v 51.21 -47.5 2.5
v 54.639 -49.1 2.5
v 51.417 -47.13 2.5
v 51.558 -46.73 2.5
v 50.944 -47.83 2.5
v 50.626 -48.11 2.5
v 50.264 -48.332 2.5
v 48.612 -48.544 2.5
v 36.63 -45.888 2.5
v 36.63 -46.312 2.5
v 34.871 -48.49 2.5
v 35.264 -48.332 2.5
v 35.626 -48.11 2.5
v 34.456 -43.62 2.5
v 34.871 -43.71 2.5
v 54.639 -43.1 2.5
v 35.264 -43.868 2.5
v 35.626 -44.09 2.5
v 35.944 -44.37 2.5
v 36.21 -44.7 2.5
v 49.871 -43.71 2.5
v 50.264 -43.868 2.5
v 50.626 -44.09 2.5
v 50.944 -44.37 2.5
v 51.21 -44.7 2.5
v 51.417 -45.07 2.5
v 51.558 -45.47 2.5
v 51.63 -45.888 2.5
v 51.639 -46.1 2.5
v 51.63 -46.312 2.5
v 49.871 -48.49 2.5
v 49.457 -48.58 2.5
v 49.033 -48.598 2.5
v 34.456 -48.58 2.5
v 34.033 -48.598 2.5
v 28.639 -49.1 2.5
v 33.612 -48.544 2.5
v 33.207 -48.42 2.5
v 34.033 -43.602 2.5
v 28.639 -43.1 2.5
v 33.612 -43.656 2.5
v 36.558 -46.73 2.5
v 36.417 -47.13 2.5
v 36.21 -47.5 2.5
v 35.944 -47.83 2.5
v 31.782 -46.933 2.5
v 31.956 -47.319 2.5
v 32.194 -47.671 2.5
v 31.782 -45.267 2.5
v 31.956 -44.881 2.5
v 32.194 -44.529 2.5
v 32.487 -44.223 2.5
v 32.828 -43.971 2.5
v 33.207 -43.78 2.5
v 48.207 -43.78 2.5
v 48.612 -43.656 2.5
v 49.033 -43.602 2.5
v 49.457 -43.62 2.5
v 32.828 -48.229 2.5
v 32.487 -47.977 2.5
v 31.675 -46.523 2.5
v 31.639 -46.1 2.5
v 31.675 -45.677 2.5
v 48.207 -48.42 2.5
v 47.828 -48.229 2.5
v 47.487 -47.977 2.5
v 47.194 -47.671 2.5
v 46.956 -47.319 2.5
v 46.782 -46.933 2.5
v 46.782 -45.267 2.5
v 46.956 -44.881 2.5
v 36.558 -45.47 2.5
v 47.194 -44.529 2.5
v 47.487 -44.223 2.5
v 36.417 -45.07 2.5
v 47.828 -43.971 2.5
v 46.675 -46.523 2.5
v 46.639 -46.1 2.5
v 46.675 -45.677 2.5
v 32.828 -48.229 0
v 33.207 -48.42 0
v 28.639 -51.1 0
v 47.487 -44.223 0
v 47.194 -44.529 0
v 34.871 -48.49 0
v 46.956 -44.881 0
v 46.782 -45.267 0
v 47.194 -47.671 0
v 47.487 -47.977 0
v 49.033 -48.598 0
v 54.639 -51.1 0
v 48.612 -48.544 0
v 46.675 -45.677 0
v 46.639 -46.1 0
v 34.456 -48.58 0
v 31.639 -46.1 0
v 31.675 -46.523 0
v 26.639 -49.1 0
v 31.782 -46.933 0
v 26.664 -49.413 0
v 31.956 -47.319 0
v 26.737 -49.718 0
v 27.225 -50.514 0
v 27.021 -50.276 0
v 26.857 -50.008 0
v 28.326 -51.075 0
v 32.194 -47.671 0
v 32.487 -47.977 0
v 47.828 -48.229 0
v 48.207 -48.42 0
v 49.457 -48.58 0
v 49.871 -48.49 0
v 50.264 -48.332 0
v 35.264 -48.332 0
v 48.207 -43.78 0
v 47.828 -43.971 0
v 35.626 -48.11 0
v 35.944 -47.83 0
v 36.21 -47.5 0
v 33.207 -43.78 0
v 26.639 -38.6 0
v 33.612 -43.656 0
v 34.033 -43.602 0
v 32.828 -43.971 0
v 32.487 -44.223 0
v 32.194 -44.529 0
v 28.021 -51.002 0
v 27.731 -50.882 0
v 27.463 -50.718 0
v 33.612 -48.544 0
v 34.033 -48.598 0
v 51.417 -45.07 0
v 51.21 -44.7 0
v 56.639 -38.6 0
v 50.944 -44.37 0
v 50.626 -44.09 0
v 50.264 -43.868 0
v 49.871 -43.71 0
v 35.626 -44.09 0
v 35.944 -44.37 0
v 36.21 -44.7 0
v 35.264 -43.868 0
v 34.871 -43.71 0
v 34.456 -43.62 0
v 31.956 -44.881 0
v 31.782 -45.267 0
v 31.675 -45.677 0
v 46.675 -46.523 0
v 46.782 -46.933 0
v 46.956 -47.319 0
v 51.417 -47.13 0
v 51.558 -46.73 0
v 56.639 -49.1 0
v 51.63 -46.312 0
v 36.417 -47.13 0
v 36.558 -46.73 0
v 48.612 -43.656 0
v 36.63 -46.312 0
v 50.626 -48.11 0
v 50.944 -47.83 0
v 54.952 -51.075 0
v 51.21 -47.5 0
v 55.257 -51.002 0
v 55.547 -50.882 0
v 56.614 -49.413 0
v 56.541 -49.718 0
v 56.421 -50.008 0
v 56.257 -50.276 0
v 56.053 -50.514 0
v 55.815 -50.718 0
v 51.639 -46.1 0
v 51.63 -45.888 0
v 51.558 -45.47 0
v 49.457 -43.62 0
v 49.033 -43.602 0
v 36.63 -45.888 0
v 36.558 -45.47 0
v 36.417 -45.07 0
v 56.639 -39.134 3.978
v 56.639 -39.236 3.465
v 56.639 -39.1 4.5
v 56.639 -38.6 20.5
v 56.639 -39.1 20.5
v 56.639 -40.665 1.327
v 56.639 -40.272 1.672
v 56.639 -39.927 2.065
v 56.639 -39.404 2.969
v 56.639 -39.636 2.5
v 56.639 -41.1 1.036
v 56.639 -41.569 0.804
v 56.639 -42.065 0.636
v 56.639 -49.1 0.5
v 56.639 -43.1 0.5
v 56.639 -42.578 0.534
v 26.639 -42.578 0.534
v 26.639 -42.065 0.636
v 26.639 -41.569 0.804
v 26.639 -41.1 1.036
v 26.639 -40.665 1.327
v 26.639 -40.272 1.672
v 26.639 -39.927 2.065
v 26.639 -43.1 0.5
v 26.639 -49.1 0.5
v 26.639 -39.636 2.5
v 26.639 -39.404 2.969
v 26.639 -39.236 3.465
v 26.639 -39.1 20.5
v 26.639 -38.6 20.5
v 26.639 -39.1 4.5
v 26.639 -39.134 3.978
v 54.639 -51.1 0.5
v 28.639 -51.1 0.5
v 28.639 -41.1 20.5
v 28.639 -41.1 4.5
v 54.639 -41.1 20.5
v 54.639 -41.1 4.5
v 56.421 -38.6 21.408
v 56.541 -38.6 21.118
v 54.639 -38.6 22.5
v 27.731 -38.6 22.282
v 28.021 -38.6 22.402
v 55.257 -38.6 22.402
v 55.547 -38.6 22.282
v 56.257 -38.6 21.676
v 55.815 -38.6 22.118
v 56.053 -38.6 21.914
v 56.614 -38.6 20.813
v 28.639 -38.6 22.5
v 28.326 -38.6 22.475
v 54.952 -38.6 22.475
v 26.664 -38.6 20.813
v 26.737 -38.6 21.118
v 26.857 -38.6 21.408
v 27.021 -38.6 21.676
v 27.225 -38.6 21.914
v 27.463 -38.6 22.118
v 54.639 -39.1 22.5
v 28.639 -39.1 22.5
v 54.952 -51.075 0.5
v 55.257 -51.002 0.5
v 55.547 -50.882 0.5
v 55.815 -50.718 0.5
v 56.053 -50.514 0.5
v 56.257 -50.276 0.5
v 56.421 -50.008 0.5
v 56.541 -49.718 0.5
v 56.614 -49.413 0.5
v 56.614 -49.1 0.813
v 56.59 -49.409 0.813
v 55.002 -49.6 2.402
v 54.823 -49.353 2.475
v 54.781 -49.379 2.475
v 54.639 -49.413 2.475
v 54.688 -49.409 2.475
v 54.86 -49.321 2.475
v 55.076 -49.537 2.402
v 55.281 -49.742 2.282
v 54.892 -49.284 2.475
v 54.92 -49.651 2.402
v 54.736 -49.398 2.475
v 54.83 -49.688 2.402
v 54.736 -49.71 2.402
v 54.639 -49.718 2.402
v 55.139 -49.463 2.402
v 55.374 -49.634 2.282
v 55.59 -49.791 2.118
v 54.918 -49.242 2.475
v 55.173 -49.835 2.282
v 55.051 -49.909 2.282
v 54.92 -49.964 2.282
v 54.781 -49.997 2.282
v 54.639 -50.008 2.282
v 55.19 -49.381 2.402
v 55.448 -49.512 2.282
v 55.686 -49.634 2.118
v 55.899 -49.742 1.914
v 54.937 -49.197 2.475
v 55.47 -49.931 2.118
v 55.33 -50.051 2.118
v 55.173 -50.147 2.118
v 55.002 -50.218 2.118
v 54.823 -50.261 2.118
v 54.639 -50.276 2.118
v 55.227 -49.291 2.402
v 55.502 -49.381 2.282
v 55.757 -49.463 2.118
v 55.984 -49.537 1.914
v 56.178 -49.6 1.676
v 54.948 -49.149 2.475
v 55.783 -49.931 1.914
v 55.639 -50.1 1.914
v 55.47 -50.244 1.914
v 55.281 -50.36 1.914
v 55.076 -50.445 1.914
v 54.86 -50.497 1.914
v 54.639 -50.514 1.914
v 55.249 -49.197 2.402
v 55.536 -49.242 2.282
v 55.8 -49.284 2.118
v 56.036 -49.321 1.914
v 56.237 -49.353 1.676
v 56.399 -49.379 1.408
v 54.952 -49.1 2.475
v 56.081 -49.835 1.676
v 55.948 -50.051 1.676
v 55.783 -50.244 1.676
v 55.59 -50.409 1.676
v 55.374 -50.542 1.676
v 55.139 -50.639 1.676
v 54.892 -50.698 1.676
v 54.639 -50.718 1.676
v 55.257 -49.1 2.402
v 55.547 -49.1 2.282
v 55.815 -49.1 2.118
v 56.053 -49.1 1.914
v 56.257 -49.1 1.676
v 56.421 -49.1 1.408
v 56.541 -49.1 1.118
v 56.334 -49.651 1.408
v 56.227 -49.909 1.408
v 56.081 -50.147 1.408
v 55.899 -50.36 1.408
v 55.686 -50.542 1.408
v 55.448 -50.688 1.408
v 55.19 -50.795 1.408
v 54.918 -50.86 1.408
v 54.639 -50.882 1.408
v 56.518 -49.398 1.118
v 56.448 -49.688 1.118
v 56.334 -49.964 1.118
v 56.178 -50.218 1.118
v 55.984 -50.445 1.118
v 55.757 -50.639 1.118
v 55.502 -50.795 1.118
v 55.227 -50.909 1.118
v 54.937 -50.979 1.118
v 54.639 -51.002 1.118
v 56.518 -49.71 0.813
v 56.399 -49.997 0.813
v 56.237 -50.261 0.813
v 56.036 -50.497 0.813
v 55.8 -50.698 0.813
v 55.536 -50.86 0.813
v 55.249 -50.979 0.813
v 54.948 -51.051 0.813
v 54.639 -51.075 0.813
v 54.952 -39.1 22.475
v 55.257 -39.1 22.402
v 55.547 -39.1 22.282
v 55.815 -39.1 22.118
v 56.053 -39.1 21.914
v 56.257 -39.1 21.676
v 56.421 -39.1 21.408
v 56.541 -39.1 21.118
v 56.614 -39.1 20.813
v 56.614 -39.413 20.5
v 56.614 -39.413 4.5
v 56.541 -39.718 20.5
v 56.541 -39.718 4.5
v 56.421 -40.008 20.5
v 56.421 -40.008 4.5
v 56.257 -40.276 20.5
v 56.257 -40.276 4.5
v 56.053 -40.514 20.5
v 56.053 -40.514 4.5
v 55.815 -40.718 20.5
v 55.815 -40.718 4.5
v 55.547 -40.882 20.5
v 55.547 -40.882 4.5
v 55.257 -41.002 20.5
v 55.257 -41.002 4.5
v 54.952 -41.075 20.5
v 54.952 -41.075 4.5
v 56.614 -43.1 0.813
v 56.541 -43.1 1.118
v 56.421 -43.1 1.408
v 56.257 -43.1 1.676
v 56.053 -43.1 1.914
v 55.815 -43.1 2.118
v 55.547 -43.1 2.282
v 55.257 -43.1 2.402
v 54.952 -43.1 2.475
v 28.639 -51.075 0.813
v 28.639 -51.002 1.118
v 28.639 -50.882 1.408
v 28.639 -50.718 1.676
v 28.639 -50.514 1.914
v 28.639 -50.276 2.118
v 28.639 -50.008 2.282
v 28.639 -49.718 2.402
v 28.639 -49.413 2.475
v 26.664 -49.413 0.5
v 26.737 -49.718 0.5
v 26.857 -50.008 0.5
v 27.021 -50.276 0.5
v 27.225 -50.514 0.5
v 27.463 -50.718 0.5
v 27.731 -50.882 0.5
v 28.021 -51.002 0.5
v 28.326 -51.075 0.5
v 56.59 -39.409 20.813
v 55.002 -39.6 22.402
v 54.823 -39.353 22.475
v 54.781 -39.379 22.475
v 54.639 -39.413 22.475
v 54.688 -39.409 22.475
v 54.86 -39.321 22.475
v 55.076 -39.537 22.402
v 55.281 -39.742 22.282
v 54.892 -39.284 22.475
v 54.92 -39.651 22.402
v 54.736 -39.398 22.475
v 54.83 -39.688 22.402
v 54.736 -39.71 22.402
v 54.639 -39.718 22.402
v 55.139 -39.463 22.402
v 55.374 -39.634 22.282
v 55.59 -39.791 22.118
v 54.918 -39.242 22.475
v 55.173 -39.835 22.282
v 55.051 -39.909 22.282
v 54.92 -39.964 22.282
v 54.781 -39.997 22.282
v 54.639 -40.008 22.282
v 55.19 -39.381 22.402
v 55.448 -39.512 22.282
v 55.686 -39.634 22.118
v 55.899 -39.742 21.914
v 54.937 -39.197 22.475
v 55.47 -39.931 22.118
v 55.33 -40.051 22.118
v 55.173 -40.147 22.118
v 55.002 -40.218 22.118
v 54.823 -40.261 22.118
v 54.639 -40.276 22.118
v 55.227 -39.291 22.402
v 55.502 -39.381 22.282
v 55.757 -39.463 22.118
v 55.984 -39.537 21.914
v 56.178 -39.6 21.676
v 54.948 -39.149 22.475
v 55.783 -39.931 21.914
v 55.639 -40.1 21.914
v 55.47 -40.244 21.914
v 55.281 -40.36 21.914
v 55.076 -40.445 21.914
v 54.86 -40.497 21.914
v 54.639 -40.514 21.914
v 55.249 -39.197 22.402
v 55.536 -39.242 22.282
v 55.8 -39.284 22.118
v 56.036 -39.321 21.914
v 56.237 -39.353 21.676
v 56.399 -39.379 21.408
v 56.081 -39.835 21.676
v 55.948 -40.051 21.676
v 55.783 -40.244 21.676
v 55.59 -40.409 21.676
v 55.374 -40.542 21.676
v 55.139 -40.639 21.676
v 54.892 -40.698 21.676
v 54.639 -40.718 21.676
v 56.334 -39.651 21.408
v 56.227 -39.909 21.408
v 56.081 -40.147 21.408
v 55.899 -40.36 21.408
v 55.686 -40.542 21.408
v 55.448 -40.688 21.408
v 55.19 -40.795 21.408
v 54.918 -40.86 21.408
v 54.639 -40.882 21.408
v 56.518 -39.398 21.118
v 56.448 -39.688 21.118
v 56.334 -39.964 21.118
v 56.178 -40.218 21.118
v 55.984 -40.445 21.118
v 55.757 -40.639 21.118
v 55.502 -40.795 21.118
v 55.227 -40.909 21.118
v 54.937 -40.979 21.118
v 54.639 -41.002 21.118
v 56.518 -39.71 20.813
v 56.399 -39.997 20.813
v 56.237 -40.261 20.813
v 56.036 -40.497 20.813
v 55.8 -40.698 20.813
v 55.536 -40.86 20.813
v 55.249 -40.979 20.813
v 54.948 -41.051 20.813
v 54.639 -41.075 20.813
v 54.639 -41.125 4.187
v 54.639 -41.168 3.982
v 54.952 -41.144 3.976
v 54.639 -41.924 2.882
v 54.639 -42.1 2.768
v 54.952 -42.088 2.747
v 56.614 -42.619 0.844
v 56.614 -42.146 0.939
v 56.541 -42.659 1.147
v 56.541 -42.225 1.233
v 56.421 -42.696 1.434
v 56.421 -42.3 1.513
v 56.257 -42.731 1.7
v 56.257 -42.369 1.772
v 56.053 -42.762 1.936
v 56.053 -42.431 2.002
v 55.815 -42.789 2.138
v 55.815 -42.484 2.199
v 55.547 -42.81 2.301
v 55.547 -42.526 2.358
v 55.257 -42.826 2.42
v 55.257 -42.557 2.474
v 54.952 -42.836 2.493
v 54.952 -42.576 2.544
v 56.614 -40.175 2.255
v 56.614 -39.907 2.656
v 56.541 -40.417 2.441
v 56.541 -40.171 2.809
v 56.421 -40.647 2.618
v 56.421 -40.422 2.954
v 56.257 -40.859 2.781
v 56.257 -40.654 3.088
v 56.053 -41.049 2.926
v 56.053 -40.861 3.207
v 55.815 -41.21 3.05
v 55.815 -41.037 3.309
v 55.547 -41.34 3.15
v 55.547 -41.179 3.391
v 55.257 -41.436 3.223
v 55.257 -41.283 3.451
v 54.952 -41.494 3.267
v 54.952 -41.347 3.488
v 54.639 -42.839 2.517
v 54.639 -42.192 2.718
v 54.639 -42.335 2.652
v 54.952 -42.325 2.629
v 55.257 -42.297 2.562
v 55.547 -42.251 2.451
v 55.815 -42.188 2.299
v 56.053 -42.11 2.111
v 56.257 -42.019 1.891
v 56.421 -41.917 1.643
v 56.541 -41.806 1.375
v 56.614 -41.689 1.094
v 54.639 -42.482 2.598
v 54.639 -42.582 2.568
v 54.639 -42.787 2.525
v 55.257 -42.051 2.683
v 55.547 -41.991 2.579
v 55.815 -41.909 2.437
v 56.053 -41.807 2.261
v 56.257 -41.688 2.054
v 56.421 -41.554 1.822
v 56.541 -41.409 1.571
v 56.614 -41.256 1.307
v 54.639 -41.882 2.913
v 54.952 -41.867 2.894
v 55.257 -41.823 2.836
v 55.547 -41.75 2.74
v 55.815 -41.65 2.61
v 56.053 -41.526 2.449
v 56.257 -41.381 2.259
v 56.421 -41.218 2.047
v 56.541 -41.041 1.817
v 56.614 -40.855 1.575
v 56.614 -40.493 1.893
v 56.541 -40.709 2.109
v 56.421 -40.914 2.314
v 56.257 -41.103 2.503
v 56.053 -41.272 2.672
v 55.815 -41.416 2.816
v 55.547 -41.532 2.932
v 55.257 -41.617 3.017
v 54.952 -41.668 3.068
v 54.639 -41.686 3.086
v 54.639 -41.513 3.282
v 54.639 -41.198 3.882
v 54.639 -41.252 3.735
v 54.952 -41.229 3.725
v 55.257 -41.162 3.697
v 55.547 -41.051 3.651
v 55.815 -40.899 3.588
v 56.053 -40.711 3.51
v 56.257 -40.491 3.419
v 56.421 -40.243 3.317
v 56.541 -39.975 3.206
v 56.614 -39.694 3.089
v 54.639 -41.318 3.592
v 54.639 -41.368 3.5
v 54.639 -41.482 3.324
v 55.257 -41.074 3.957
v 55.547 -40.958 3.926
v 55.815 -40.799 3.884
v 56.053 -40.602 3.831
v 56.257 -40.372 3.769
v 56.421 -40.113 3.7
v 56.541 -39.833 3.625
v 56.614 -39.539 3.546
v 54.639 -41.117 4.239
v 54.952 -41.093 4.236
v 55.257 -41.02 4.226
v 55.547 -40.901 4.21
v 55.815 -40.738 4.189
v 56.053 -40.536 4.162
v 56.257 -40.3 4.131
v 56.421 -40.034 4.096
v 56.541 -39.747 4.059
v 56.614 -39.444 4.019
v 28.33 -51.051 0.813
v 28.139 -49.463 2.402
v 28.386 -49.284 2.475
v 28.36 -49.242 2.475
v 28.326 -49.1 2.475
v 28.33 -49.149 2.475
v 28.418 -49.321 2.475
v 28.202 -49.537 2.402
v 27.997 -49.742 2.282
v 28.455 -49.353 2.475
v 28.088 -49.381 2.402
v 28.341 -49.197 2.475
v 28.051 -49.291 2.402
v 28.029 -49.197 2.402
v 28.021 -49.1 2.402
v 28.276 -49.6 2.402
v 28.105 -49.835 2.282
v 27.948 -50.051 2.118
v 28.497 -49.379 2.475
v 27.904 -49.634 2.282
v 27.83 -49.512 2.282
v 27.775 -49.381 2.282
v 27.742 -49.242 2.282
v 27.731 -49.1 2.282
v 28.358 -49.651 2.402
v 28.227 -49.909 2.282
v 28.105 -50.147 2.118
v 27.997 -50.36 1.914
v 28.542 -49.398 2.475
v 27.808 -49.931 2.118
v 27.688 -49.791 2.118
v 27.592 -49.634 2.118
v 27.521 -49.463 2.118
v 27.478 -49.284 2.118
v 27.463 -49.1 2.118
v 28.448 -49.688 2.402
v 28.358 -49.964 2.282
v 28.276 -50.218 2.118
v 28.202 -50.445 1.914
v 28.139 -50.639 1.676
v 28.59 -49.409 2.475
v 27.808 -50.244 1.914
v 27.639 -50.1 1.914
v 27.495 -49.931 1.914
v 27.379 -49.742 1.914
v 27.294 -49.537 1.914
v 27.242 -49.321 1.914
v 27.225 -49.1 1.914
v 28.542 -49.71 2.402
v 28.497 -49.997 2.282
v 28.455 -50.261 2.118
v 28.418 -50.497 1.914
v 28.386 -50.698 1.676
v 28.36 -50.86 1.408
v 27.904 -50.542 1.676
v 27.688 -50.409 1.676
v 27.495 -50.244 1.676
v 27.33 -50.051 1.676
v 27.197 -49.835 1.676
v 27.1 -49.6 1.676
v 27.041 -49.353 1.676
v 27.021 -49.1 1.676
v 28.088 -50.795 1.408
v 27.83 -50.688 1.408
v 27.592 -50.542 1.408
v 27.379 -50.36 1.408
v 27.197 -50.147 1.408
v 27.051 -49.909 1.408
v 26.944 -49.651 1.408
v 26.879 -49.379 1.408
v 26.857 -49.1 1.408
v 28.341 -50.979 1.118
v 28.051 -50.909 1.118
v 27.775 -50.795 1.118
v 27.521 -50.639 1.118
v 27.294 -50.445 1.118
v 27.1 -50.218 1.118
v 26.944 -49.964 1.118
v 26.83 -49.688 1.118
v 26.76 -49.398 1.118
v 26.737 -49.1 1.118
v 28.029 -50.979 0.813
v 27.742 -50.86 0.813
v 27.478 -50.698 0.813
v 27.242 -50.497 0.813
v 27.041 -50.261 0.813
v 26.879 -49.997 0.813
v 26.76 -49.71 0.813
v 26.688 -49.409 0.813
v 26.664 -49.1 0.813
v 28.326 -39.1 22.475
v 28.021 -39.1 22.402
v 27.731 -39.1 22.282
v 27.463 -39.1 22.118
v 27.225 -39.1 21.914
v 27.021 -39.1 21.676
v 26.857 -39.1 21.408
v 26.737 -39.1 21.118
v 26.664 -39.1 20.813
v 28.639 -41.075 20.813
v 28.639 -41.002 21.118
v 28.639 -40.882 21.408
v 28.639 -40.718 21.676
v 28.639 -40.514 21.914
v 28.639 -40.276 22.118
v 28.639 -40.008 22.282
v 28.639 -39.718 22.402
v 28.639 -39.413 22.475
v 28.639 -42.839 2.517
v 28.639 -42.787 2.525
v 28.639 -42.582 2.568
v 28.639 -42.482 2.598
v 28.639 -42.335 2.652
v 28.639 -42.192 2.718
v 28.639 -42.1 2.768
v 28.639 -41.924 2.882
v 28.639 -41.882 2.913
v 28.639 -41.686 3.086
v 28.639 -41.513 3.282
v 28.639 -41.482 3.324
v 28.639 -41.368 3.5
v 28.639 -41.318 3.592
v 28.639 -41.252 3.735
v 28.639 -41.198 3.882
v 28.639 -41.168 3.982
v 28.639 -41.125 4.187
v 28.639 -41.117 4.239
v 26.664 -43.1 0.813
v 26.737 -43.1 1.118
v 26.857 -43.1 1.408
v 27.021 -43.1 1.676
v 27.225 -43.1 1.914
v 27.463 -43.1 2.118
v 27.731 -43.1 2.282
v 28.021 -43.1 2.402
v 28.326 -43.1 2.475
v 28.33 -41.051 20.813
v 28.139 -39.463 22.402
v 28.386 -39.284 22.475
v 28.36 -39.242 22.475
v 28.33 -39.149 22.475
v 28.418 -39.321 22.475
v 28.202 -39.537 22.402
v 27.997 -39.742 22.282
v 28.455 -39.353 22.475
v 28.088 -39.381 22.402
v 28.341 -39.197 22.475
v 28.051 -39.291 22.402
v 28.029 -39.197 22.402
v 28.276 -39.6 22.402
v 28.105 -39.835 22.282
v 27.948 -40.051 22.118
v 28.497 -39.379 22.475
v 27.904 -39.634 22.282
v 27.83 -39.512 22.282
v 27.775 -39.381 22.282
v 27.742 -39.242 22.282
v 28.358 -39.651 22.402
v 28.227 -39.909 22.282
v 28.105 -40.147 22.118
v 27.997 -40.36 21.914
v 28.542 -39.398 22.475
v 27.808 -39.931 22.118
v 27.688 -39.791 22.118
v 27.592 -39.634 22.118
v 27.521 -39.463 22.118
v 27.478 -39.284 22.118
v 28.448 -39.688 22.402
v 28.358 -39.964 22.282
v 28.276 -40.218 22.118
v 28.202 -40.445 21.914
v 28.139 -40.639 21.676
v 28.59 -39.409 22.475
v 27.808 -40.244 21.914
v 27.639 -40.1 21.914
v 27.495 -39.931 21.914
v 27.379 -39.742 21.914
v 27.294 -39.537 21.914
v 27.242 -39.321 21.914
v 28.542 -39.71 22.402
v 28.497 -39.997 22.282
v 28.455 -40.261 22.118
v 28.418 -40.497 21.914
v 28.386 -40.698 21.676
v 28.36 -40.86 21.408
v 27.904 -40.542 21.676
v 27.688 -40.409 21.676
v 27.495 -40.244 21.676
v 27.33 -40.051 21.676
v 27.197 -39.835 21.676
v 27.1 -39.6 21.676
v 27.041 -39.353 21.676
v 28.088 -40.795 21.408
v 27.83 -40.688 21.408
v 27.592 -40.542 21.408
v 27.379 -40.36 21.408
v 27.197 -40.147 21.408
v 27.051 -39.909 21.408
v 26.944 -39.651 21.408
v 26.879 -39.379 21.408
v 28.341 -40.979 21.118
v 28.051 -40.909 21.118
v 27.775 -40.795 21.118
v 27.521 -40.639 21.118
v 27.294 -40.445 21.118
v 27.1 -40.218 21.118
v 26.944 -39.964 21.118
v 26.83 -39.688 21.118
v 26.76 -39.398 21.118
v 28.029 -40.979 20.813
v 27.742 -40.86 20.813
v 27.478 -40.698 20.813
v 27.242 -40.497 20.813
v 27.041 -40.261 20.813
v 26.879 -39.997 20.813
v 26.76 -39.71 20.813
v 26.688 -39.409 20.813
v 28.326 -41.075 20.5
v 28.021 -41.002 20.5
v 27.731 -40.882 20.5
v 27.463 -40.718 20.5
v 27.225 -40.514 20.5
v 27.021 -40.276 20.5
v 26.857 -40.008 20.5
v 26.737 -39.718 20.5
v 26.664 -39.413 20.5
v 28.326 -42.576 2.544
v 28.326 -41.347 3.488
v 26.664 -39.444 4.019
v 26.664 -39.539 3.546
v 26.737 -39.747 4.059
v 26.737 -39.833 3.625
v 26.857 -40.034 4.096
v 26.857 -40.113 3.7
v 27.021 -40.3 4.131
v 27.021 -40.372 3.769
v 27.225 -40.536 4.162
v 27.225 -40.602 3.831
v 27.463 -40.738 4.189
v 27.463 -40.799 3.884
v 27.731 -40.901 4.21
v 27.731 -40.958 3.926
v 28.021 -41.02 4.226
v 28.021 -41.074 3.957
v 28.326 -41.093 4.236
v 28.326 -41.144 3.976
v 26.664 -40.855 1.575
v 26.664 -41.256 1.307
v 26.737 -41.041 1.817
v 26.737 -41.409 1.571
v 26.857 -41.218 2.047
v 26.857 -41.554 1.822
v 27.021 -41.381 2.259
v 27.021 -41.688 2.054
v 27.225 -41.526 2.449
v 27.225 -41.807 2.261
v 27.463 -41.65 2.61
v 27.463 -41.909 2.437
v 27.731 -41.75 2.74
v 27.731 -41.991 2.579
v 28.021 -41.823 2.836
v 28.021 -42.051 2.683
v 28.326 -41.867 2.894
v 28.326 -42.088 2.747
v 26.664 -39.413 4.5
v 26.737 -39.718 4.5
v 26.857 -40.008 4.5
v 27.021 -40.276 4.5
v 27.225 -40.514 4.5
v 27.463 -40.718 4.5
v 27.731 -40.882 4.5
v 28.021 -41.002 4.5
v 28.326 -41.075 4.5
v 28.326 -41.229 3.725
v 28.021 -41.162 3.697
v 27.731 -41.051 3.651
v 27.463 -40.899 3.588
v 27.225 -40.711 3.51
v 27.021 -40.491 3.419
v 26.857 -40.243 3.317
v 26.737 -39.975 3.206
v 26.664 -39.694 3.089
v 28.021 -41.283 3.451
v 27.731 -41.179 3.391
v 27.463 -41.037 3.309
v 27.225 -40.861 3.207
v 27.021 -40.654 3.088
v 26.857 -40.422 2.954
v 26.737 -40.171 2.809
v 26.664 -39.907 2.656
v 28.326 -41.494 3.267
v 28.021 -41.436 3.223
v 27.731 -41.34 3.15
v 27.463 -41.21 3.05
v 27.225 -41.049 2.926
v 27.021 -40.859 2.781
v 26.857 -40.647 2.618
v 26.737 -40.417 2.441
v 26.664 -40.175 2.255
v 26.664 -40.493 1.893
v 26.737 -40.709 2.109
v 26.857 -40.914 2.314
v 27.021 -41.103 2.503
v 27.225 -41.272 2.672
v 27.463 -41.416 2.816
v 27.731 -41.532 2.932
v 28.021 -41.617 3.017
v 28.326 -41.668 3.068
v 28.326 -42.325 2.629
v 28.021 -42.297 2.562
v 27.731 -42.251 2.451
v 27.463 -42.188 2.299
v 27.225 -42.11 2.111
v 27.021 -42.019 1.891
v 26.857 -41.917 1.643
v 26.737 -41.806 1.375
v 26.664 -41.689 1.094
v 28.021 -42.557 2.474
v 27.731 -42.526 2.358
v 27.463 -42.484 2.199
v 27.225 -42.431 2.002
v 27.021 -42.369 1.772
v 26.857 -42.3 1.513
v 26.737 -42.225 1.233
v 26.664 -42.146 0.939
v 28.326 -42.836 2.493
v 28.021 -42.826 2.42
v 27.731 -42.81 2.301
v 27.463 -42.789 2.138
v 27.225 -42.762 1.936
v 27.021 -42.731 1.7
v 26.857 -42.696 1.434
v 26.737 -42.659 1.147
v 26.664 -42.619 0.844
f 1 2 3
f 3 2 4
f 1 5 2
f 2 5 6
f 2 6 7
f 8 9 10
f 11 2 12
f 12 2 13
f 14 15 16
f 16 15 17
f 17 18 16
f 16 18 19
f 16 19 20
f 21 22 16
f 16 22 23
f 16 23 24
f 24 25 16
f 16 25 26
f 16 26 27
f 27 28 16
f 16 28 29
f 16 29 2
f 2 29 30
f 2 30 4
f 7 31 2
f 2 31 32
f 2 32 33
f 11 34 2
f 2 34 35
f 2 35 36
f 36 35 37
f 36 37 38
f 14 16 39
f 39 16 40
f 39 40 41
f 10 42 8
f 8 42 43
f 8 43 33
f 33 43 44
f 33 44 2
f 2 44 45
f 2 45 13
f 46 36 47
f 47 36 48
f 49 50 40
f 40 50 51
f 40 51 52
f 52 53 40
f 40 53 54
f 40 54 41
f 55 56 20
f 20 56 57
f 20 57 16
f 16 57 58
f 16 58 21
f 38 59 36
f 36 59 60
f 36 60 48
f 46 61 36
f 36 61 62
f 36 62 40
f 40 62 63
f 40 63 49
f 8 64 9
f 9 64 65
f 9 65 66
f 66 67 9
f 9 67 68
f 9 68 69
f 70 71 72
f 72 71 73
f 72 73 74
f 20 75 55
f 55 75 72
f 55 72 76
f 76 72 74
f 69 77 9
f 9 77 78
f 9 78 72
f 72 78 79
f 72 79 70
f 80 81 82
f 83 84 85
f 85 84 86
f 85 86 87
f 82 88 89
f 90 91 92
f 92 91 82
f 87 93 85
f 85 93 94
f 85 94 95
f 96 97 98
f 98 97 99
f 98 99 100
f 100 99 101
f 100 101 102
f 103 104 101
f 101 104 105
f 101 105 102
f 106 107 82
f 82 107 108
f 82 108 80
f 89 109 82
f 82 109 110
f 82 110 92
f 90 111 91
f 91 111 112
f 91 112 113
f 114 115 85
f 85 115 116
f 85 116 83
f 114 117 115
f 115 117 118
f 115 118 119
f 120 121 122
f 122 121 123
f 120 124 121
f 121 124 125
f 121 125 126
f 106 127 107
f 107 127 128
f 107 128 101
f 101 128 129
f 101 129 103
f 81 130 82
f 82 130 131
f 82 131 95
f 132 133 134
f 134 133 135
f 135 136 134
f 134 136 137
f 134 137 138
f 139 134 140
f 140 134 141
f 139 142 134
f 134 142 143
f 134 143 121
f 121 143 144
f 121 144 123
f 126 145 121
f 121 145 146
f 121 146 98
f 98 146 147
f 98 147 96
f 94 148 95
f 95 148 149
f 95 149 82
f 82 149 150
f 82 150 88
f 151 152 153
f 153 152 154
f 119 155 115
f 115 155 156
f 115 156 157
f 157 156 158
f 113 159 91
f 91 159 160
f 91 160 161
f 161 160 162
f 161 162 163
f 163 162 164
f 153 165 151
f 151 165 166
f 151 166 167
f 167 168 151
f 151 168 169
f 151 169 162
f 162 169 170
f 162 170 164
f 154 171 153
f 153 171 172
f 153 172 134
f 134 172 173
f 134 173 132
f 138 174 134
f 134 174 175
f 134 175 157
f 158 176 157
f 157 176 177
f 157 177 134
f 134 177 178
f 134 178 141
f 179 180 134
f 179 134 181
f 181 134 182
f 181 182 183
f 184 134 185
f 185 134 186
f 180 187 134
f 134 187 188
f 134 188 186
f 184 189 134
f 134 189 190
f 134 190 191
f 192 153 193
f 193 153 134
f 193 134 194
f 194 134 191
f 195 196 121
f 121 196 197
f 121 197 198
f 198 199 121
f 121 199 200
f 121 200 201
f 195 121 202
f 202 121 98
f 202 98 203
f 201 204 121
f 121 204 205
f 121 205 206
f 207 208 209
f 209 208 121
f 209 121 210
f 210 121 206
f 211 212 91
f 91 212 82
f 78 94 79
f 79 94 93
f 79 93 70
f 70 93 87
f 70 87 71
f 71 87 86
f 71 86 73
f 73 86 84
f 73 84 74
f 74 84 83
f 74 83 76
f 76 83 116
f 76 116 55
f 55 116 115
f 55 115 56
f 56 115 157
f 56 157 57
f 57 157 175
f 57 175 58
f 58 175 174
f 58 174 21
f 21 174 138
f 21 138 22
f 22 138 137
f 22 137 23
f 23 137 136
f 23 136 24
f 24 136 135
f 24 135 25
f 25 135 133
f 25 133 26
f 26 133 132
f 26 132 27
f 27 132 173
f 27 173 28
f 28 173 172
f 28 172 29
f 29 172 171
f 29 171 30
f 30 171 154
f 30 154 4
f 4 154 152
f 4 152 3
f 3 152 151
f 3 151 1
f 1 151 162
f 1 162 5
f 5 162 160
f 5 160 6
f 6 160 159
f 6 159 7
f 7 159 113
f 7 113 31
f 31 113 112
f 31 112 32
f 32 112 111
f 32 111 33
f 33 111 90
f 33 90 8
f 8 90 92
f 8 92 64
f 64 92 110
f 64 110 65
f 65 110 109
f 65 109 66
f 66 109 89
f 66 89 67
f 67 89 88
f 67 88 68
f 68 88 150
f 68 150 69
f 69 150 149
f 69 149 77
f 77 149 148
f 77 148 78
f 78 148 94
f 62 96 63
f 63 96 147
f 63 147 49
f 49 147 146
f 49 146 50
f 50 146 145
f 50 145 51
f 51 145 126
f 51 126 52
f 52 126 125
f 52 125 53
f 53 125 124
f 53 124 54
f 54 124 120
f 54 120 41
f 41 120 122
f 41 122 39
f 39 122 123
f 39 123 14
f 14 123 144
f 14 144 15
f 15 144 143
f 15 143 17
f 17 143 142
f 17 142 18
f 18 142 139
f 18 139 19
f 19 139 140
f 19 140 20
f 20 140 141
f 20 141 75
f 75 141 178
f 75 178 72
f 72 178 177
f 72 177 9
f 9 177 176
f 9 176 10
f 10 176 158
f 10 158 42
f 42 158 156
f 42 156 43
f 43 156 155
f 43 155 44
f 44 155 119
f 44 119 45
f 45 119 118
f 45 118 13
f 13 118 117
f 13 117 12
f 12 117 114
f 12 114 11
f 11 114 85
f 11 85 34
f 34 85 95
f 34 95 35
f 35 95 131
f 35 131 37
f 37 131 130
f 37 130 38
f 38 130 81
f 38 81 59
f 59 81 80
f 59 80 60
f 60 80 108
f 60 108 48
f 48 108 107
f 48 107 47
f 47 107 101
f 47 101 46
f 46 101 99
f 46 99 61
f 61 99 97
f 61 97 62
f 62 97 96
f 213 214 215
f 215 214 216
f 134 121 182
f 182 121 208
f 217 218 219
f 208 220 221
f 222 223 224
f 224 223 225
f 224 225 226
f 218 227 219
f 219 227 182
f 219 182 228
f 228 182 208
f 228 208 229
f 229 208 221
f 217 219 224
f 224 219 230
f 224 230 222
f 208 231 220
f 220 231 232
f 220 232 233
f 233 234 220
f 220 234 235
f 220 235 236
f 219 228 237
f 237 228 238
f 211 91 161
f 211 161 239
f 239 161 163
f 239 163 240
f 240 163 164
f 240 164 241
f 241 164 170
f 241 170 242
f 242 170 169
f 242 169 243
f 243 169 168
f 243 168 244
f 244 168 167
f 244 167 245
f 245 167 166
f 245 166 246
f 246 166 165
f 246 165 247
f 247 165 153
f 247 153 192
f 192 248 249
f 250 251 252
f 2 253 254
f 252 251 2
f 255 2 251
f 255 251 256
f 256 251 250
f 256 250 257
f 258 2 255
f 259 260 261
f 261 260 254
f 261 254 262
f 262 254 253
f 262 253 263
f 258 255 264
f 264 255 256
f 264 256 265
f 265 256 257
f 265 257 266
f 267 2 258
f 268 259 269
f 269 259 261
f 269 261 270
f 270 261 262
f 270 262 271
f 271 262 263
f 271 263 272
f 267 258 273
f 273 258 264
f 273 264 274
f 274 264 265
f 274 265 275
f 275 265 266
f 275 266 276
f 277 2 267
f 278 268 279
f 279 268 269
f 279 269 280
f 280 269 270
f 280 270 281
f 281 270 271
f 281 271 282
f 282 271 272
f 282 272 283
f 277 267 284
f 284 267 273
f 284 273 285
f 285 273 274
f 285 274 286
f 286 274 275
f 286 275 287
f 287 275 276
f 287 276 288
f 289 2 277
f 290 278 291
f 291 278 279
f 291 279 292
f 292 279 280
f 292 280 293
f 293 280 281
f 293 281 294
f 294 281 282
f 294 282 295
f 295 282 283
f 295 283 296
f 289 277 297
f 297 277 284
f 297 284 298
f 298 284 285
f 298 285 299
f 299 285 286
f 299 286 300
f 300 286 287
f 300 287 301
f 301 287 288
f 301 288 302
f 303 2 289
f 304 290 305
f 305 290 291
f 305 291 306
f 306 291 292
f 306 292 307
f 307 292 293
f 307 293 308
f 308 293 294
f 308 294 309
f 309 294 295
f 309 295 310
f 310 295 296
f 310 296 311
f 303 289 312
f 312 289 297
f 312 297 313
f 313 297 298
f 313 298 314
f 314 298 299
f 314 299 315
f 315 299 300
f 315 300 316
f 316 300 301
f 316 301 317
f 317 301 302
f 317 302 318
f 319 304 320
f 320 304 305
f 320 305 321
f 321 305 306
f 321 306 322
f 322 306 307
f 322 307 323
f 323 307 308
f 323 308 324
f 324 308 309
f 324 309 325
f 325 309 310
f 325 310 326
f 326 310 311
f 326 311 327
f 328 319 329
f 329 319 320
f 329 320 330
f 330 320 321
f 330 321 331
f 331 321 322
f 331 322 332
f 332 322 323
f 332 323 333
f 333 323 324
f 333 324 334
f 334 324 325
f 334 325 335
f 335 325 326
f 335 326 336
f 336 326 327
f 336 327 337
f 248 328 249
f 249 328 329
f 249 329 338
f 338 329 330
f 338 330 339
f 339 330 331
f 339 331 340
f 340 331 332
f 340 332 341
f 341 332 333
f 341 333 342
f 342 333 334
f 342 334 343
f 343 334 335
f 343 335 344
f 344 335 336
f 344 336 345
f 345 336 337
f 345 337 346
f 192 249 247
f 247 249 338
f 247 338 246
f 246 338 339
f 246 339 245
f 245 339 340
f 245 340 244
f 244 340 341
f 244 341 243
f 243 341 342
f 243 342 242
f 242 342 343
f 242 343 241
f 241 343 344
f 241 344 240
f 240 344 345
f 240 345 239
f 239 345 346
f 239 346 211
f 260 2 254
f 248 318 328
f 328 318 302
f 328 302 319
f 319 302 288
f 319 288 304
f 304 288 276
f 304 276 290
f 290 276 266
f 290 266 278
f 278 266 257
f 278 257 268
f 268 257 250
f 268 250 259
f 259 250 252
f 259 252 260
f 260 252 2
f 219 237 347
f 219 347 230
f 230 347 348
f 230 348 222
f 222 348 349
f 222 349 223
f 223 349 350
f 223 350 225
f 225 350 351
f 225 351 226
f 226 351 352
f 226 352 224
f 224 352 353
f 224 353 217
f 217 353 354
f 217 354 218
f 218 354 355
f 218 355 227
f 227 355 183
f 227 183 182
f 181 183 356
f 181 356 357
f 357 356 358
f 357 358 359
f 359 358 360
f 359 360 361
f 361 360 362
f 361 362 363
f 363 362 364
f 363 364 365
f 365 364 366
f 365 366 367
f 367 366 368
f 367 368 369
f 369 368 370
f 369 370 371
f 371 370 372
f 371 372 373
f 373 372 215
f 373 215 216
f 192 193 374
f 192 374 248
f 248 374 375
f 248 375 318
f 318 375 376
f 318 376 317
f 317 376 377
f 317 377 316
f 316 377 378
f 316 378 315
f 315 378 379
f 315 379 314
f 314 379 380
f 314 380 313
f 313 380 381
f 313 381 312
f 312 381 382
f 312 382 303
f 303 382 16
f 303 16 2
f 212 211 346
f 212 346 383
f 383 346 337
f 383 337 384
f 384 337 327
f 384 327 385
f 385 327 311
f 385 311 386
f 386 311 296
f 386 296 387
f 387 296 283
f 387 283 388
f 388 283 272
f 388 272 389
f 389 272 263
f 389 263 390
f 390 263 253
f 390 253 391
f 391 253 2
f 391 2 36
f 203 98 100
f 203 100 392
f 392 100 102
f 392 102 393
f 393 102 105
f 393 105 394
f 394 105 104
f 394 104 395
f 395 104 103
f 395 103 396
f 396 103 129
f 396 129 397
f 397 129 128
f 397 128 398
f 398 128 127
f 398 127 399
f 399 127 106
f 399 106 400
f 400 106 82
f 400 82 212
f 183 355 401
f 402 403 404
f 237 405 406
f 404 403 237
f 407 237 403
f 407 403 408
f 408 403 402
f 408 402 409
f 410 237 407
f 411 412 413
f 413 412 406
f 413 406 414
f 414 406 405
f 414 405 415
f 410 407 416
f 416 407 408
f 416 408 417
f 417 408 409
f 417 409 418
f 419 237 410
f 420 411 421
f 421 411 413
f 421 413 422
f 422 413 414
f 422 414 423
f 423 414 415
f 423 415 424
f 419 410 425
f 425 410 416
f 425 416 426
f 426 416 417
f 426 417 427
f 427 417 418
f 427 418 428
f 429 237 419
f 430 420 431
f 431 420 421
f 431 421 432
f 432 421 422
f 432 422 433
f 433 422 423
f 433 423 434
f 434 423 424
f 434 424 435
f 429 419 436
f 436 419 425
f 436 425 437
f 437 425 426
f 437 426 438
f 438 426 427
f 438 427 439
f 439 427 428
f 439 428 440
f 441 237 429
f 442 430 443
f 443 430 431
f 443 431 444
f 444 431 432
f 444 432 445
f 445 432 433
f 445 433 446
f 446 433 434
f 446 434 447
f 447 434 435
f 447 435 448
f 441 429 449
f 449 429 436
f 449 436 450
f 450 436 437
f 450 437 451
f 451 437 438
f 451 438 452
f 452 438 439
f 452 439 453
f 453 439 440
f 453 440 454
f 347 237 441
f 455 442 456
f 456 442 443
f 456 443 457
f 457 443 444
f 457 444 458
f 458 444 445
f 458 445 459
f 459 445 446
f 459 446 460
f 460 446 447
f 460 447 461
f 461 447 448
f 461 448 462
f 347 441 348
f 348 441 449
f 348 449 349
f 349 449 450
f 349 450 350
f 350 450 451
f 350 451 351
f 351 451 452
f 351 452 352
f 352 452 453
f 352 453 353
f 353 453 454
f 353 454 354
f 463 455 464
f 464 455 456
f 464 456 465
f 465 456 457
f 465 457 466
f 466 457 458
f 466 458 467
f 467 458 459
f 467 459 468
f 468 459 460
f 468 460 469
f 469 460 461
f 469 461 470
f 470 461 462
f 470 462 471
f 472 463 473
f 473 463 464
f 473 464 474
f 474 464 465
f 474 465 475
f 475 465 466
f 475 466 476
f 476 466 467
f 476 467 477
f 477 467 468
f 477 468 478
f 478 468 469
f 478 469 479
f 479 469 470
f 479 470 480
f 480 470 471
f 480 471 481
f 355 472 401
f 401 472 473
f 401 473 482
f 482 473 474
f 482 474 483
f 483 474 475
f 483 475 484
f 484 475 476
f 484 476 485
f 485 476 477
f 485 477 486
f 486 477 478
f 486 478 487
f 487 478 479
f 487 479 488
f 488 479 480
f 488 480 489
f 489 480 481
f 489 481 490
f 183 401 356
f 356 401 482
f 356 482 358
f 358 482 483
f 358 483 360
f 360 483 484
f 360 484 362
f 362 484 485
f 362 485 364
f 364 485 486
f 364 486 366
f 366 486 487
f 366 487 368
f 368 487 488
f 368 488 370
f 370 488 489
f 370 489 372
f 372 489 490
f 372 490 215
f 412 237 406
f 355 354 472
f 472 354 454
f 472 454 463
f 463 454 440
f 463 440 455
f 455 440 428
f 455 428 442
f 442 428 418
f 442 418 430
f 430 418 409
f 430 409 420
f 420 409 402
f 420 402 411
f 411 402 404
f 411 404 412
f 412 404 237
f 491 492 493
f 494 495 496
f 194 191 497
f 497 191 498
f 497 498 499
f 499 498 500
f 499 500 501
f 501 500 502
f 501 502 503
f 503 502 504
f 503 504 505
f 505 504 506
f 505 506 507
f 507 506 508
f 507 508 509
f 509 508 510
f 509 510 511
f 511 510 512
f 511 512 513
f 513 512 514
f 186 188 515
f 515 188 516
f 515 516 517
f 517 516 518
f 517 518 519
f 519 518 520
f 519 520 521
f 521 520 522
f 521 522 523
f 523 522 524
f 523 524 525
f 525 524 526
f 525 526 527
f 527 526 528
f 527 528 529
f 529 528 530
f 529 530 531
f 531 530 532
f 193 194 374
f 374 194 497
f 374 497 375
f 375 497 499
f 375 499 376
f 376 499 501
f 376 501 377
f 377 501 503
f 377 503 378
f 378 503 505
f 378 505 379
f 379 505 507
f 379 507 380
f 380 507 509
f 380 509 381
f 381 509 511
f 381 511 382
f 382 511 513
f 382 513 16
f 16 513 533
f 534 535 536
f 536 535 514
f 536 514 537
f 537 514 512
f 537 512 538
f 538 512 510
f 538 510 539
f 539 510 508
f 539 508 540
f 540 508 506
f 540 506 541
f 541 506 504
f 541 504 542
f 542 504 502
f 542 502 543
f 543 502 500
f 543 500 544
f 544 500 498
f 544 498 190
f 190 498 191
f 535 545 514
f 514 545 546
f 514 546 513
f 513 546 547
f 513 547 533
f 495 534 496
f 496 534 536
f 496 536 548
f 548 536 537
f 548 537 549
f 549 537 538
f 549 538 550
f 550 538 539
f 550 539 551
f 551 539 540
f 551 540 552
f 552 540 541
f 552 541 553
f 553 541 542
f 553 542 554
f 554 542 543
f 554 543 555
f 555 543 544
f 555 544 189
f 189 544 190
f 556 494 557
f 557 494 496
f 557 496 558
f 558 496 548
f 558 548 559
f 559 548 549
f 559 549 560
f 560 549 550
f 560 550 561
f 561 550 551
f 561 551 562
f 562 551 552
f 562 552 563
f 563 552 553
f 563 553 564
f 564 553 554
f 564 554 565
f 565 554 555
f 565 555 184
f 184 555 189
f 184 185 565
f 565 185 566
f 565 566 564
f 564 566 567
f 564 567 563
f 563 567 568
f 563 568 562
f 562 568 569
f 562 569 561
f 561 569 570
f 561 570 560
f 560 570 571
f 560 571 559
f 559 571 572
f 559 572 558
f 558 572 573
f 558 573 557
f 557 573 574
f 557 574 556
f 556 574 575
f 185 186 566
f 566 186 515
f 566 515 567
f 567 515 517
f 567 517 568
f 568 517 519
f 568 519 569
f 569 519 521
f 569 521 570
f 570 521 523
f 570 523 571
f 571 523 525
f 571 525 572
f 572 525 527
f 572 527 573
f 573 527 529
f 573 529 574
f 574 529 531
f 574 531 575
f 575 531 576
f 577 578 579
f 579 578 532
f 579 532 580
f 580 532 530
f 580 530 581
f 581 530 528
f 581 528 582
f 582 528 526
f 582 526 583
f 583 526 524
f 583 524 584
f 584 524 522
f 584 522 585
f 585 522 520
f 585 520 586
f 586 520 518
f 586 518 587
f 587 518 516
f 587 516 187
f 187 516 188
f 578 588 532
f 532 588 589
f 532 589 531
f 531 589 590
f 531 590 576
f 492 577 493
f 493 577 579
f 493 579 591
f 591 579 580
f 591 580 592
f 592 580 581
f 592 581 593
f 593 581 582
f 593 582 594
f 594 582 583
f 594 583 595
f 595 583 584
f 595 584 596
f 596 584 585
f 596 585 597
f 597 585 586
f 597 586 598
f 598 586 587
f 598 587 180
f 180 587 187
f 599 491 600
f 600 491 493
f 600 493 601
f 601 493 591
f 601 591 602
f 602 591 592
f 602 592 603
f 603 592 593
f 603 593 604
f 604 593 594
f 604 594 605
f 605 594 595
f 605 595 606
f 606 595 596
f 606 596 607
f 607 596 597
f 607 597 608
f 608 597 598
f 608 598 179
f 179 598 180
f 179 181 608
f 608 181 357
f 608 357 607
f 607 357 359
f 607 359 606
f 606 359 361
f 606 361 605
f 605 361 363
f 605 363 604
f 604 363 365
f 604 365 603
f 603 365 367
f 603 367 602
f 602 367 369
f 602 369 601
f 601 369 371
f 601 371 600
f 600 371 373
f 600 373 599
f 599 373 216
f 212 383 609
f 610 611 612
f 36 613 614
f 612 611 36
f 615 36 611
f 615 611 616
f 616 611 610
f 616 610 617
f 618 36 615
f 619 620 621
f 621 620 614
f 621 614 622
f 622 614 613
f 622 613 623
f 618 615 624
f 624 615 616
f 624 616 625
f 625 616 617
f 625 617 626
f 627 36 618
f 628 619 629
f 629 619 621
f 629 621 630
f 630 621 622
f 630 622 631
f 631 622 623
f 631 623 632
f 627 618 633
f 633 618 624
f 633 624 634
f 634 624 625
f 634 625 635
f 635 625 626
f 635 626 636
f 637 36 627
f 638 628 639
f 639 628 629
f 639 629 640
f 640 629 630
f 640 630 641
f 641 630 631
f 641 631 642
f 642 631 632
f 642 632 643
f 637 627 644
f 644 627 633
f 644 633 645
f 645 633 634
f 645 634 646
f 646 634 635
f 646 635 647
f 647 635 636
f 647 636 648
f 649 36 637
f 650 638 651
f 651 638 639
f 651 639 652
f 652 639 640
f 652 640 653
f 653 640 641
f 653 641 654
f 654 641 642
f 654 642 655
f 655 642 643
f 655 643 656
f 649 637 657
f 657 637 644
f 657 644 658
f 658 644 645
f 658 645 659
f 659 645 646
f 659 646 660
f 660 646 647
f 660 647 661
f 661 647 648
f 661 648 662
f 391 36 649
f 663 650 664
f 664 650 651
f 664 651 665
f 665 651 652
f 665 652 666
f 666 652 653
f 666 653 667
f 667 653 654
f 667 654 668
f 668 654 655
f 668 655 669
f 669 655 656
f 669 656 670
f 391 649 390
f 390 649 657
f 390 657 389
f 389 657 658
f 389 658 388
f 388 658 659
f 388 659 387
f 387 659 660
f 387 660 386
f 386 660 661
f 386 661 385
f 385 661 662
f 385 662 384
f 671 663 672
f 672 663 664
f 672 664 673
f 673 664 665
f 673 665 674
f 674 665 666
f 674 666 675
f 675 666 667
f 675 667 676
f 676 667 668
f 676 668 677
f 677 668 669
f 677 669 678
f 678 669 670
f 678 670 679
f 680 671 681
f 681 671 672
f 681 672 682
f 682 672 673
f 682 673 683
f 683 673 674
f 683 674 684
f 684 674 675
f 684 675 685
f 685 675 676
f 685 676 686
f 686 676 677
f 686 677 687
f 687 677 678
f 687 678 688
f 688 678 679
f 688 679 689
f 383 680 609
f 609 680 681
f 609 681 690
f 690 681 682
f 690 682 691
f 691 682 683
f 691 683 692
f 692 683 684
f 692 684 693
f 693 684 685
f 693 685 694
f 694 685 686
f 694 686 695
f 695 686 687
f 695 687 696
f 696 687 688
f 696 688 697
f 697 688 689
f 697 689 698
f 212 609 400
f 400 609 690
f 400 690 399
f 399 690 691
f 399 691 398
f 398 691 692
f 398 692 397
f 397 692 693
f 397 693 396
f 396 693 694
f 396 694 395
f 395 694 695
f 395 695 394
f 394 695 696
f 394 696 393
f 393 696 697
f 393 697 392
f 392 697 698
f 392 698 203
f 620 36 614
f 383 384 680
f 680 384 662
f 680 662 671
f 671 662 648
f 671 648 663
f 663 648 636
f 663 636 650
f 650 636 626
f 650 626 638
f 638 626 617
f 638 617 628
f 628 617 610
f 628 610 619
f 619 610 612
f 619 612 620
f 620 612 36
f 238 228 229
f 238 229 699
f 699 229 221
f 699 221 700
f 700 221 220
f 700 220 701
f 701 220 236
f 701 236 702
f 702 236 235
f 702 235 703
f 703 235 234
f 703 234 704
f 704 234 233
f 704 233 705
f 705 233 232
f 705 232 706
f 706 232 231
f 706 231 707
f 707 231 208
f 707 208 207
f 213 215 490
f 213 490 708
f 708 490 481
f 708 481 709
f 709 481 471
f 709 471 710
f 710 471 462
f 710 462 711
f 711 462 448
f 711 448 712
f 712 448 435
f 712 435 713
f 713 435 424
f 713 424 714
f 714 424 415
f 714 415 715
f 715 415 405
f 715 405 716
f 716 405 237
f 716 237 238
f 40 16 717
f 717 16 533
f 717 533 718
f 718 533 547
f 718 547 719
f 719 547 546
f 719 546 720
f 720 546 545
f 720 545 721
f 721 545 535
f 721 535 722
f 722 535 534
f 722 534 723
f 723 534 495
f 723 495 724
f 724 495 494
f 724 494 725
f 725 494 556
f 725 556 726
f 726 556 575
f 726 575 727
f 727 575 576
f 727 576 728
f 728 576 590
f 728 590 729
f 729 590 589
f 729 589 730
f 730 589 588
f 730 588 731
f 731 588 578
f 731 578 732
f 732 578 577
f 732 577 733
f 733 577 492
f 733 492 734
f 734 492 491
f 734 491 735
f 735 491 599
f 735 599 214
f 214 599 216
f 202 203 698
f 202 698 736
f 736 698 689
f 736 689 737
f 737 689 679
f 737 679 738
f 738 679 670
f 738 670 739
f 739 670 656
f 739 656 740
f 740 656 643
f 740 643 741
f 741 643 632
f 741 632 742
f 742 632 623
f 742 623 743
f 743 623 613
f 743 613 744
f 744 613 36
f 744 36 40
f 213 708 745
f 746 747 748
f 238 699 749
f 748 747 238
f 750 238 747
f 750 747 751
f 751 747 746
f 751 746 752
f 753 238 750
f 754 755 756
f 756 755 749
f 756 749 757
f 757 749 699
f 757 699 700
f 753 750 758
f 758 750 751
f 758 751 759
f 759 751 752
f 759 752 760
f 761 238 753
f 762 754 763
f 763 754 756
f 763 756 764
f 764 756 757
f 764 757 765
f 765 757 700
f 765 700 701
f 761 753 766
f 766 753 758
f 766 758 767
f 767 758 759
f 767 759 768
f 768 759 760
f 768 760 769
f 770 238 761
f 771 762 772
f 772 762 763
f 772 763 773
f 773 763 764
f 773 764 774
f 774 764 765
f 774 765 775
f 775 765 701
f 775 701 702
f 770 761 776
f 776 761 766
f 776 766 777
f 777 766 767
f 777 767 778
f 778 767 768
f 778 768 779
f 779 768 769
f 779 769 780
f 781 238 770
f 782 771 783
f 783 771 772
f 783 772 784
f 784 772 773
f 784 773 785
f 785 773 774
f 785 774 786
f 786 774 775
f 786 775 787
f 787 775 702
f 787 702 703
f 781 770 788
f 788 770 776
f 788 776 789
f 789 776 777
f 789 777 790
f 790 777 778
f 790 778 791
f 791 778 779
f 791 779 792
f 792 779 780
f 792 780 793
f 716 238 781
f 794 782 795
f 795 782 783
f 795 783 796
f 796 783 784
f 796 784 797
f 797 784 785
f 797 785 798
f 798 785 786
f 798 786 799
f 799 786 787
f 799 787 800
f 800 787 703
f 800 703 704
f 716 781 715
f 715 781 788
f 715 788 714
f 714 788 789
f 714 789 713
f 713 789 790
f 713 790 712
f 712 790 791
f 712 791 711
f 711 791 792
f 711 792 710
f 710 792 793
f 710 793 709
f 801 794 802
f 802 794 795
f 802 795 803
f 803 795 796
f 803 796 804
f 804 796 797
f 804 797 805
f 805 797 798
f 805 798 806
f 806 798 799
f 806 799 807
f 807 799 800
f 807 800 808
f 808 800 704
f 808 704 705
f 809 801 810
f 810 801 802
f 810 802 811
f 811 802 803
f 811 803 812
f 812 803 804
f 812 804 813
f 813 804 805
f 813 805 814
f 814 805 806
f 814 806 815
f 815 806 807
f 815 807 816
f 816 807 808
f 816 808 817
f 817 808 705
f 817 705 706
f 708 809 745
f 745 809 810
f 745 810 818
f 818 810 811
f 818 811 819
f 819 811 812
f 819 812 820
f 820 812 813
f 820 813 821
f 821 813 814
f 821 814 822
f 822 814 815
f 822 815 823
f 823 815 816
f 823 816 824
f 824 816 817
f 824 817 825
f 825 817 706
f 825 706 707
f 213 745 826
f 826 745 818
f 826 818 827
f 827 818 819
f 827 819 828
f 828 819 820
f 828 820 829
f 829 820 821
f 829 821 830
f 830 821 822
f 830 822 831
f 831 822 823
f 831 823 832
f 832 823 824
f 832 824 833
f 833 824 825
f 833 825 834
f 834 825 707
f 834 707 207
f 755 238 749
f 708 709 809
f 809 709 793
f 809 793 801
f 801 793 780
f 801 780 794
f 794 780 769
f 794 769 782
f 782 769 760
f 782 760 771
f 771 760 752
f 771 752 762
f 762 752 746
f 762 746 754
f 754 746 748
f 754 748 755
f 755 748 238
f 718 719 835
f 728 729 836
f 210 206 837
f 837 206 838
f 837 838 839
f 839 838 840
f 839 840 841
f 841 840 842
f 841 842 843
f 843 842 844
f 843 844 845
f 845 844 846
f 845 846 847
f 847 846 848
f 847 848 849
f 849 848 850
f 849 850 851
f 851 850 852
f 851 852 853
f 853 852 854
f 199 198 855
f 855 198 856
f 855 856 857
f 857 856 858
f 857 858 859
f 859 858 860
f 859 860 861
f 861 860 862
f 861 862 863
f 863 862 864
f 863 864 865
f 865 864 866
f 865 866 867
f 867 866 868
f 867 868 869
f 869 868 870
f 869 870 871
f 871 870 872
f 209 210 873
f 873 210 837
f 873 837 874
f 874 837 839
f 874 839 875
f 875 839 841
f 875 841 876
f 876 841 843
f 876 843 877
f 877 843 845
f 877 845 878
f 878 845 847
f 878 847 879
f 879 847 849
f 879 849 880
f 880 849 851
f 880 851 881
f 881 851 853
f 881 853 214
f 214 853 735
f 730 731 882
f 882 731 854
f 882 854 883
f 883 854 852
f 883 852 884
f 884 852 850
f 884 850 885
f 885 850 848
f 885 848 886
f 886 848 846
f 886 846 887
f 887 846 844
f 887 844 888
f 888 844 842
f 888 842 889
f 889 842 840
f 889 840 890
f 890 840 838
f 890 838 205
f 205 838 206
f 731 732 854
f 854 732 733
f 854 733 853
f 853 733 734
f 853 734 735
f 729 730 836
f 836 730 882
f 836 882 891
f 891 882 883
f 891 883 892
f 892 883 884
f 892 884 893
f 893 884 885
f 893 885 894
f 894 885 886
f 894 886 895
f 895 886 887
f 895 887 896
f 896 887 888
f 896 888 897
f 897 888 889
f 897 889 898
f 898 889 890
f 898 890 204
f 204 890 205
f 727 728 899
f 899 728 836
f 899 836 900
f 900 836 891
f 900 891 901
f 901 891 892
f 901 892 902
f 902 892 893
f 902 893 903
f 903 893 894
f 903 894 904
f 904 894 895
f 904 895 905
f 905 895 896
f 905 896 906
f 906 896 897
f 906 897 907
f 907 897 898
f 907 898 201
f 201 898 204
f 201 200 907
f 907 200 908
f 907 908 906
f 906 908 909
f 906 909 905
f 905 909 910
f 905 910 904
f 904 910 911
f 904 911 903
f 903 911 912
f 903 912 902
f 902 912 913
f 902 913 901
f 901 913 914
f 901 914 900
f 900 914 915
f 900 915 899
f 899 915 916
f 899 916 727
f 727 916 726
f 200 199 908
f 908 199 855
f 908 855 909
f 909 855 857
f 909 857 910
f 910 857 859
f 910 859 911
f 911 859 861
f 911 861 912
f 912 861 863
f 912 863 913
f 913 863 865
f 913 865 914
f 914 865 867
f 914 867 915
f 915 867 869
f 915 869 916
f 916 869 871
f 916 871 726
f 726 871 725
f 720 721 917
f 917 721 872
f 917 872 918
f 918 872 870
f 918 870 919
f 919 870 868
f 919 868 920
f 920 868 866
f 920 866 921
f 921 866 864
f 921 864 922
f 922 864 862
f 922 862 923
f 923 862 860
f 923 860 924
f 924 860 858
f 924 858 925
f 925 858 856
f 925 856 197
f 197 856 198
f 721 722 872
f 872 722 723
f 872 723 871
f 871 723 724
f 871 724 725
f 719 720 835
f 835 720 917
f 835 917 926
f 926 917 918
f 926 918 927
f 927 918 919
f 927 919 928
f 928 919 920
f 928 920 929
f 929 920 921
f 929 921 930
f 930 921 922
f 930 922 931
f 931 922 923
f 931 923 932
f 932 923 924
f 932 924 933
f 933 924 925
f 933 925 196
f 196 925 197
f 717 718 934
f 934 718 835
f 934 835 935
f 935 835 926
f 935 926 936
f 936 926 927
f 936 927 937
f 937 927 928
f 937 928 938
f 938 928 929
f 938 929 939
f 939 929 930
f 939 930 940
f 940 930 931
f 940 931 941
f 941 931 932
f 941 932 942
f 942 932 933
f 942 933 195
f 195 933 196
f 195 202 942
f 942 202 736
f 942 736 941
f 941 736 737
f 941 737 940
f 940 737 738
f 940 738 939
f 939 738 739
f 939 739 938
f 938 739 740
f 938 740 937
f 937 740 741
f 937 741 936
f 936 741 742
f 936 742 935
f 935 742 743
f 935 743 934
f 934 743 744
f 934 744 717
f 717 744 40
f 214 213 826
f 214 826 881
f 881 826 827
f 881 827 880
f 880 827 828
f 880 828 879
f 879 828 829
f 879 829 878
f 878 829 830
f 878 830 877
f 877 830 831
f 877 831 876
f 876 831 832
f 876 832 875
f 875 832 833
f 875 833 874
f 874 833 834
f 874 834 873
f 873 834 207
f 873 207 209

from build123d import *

# Parameters (mm, degrees)
SKETCH1_W           = 30
SKETCH1_H           = 10
SKETCH1_R           = 2.5
BOSS_EXTRUDE1_DEPTH = 2.5
SKETCH2_W           = 30
SKETCH2_H           = 2.5
BOSS_EXTRUDE2_DEPTH = 22.5
FILLET1_R           = 2


with BuildPart() as part:
    # Sketch1 → Boss-Extrude1 (new body)
    with BuildSketch(Plane(origin=(0, 0, 0), x_dir=(-1, 0, 0), z_dir=(0, 0, 1))):
        with Locations((-41.638953423, 46.1)):
            Rectangle(SKETCH1_W, SKETCH1_H)
        with Locations(Location((-49.138953423, 46.1, 0), (0, 0, 180))):
            Circle(SKETCH1_R, mode=Mode.SUBTRACT)
        with Locations((-34.138953423, 46.1)):
            Circle(SKETCH1_R, mode=Mode.SUBTRACT)
    extrude(amount=BOSS_EXTRUDE1_DEPTH)

    # Sketch2 → Boss-Extrude2 (add)
    with BuildSketch(Plane(origin=(0, 0, 0), x_dir=(-1, 0, 0), z_dir=(0, 0, -1))):
        with Locations((-41.638953423, -39.85)):
            Rectangle(SKETCH2_W, SKETCH2_H)
    extrude(amount=-BOSS_EXTRUDE2_DEPTH)

    # Fillet1
    fillet1_edges = [part.edges().sort_by_distance(p)[0] for p in [
        (26.638953423, -46.1, 2.5),
        (41.638953423, -51.1, 2.5),
        (41.638953423, -41.1, 22.5),
        (26.638953423, -41.1, 12.5),
        (26.638953423, -39.85, 22.5),
        (56.638953423, -39.85, 22.5),
        (56.638953423, -41.1, 12.5),
        (56.638953423, -46.1, 2.5),
        (56.638953423, -51.1, 1.25),
        (26.638953423, -51.1, 1.25),
        (41.638953423, -41.1, 2.5),
    ]]
    fillet(fillet1_edges, radius=FILLET1_R)


solid = part.part
